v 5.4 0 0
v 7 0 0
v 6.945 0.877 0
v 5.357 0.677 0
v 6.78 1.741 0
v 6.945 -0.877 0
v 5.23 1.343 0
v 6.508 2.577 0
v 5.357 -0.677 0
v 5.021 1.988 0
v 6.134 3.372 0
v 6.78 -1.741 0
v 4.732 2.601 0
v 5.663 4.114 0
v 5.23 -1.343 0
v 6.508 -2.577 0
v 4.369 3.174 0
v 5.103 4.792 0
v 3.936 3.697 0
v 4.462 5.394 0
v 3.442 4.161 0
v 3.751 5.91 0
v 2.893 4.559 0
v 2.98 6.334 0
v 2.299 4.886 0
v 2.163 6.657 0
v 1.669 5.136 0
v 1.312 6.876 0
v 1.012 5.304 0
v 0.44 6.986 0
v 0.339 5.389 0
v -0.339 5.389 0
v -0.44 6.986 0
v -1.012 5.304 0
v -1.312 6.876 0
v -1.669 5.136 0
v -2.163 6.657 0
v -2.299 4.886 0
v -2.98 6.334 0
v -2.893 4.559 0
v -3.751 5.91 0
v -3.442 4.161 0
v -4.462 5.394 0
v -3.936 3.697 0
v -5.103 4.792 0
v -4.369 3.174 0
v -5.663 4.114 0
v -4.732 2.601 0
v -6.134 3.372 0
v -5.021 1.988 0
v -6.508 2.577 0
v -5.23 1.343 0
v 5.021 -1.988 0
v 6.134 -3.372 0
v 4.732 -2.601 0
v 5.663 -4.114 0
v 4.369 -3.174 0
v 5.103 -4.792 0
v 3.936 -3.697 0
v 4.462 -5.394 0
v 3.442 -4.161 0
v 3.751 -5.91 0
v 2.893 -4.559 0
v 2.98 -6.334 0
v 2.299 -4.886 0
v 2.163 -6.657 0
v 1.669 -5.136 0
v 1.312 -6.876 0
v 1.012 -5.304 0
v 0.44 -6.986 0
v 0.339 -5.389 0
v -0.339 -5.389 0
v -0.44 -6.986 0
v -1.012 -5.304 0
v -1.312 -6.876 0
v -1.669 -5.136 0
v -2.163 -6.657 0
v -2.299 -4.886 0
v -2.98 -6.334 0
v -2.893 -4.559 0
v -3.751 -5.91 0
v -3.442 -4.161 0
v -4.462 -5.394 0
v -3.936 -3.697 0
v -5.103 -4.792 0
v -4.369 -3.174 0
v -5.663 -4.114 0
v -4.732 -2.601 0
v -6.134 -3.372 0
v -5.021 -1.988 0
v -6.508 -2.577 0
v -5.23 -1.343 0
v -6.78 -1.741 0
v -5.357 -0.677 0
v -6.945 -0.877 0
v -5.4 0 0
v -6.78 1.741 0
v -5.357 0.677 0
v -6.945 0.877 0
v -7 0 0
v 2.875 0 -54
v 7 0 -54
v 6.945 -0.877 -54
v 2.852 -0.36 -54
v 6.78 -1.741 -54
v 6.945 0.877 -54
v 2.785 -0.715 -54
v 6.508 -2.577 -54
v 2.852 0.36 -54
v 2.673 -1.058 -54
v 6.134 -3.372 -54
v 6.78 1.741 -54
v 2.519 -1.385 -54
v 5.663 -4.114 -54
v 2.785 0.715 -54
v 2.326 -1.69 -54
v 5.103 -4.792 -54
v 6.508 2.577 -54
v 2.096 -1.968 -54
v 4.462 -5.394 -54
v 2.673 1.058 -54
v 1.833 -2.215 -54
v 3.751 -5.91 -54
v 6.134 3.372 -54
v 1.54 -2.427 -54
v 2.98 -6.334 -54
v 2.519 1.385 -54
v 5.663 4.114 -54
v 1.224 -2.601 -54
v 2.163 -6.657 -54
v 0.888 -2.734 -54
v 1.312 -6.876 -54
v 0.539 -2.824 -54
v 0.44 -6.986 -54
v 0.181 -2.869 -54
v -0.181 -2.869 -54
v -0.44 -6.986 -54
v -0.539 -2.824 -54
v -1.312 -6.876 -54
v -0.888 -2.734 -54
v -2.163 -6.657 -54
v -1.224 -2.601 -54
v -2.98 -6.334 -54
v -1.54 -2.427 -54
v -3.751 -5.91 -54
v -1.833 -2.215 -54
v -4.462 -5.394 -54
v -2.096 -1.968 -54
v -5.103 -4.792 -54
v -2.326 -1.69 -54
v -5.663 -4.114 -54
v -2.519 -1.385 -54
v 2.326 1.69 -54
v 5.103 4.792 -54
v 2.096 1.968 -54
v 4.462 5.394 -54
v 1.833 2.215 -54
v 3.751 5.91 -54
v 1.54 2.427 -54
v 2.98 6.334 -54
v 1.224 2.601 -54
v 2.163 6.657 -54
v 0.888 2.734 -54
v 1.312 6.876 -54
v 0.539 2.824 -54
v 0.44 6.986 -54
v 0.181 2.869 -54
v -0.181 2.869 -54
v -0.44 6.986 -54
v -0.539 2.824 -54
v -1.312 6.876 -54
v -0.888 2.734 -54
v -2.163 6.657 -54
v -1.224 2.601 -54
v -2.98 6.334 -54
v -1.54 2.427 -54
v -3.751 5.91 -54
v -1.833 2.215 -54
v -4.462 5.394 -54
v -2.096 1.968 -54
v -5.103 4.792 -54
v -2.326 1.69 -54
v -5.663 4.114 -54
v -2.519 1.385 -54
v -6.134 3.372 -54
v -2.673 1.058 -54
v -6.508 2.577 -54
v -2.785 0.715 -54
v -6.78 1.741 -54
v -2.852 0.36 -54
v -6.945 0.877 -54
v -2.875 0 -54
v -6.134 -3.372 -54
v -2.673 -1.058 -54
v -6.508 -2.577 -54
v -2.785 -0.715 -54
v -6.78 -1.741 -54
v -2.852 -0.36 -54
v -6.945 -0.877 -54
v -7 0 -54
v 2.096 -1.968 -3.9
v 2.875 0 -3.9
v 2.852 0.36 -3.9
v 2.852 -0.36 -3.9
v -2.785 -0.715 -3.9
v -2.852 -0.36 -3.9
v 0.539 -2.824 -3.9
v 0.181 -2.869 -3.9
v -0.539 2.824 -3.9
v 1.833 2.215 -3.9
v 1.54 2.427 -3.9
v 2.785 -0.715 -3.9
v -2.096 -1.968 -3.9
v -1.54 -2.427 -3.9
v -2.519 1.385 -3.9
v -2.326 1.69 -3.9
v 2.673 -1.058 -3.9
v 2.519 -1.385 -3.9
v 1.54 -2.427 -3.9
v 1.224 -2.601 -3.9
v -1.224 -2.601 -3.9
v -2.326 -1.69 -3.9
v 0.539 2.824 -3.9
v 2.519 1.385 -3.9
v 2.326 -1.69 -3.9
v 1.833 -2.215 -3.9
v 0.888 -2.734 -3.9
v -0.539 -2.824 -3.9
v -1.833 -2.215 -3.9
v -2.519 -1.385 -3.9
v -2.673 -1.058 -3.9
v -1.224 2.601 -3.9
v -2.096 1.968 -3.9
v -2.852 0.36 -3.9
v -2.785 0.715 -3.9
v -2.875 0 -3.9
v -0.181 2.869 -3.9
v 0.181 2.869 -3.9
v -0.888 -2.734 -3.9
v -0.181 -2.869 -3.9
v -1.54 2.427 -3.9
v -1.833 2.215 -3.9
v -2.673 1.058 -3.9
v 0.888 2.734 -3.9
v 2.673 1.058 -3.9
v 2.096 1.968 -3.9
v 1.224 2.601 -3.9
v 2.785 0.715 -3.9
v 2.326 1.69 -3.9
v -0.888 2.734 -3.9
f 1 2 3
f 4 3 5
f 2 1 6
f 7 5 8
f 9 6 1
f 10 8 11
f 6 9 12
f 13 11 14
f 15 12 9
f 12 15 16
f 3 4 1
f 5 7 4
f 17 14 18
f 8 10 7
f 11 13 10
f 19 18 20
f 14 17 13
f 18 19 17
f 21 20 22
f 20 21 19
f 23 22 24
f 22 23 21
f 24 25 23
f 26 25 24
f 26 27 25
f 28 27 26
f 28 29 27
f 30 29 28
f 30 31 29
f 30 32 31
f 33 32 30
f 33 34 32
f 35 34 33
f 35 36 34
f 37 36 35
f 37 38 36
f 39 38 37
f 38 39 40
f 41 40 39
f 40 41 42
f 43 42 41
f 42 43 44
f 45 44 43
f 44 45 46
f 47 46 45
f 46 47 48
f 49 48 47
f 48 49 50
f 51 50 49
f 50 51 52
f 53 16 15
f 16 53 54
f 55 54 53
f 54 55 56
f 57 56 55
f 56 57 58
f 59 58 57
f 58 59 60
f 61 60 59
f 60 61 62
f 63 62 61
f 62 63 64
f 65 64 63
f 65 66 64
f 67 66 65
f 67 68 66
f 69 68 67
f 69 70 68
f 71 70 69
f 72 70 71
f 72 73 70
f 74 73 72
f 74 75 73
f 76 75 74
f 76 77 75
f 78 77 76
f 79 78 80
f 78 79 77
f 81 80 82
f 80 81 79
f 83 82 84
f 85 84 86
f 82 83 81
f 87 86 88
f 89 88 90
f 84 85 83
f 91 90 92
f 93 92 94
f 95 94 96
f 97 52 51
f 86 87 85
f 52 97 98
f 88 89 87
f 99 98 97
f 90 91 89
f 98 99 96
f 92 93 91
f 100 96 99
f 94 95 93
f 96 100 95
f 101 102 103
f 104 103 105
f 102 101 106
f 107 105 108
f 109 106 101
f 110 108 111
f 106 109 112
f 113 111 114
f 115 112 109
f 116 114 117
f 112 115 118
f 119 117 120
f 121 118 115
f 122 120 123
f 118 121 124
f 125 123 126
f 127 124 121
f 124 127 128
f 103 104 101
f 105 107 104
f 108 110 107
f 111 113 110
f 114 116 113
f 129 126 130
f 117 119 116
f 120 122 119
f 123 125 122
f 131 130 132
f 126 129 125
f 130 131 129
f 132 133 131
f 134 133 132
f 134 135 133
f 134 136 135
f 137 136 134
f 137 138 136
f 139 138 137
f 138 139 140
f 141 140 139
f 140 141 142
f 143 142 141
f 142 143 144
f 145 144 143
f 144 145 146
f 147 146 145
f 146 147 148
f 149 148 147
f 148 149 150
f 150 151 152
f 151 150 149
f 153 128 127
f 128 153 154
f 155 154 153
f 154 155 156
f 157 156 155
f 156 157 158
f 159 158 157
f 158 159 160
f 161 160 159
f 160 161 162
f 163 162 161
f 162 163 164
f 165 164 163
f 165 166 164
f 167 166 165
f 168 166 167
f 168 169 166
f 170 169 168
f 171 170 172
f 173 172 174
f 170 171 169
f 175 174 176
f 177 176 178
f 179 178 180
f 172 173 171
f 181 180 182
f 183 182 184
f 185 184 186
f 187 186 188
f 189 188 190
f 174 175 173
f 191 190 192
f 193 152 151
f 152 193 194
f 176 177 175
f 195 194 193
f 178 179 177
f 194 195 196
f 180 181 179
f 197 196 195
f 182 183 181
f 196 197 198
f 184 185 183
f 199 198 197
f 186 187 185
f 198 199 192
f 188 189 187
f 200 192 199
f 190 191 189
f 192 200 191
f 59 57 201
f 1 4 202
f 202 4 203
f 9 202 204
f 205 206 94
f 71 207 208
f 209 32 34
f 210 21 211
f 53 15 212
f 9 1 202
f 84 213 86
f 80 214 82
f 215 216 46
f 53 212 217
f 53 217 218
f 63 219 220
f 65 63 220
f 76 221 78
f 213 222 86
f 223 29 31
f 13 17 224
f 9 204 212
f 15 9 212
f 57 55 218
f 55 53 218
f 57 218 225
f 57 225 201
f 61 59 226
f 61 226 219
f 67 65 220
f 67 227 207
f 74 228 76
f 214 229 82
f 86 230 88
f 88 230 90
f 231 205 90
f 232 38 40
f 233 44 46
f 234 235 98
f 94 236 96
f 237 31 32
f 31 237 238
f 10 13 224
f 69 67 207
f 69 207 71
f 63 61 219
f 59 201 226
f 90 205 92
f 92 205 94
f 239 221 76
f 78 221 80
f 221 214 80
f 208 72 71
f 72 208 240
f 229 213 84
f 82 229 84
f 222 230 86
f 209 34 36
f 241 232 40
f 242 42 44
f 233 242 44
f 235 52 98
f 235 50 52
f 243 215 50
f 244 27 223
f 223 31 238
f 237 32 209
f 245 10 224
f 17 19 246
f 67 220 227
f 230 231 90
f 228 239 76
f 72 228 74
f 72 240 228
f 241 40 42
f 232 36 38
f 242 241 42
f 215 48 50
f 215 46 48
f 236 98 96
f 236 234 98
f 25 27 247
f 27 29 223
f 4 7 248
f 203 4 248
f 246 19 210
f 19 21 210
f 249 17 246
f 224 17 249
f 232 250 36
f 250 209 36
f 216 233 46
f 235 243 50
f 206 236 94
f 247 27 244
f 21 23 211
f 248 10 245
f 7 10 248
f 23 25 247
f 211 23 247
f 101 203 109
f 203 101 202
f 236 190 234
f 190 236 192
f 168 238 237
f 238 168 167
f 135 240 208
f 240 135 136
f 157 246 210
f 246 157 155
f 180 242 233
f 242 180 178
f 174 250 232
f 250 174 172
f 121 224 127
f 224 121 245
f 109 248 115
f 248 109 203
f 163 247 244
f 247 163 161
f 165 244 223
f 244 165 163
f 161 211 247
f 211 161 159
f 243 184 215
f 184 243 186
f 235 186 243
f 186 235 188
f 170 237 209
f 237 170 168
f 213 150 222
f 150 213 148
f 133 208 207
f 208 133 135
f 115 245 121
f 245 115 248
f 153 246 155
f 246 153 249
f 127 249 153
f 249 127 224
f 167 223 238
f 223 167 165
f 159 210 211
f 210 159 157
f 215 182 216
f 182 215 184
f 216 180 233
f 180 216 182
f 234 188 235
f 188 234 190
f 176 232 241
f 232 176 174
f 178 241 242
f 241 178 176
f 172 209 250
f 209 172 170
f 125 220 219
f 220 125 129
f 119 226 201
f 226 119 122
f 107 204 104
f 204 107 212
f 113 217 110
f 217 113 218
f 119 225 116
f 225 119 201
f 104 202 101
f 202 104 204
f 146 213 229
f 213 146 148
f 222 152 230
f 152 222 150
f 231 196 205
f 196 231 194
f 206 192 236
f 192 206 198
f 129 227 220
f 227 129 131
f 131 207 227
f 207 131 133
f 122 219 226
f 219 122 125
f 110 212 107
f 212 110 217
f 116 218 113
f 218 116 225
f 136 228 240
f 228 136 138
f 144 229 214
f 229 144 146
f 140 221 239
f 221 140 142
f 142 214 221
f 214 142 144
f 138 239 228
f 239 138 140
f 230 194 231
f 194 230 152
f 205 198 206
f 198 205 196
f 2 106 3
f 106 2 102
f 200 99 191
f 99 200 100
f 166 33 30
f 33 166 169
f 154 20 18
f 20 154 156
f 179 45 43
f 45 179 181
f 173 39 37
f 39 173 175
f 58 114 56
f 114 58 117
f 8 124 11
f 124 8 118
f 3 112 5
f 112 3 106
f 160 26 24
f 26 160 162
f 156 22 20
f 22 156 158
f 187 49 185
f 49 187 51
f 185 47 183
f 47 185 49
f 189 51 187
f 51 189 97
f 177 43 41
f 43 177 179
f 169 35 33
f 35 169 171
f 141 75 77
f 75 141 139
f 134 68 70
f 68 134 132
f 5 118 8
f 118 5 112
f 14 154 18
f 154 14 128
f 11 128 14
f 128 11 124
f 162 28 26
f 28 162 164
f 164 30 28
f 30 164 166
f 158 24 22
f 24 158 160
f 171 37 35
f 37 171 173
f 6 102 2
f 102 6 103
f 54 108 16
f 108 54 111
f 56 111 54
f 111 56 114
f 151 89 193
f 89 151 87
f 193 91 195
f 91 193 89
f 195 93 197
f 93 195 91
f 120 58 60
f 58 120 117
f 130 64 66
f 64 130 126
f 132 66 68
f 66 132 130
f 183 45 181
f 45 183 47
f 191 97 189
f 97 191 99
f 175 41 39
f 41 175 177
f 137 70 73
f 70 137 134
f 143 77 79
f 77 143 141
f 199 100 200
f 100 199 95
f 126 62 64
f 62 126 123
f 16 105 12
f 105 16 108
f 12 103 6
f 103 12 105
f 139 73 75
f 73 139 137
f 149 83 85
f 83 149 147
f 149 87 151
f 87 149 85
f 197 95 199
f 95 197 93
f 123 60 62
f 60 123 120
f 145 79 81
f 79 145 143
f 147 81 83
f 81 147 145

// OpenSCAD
$fn = 50;


difference() {
	union() {
		translate(v = [0, 0, -54.0000000000]) {
			cylinder(h = 54, r = 7.0000000000);
		}
		cylinder(h = 0, r = 10.0000000000);
	}
	union() {
		translate(v = [0, 0, 0]) {
			rotate(a = [0, 0, 0]) {
				difference() {
					union() {
						#translate(v = [0, 0, -54.0000000000]) {
							cylinder(h = 54, r = 2.6000000000);
						}
						#translate(v = [0, 0, -3.9000000000]) {
							cylinder(h = 3.9000000000, r1 = 2.8750000000, r2 = 5.4000000000);
						}
						#translate(v = [0, 0, -54.0000000000]) {
							cylinder(h = 54, r = 2.8750000000);
						}
						#translate(v = [0, 0, -54.0000000000]) {
							cylinder(h = 54, r = 2.6000000000);
						}
					}
					union();
				}
			}
		}
	}
}
